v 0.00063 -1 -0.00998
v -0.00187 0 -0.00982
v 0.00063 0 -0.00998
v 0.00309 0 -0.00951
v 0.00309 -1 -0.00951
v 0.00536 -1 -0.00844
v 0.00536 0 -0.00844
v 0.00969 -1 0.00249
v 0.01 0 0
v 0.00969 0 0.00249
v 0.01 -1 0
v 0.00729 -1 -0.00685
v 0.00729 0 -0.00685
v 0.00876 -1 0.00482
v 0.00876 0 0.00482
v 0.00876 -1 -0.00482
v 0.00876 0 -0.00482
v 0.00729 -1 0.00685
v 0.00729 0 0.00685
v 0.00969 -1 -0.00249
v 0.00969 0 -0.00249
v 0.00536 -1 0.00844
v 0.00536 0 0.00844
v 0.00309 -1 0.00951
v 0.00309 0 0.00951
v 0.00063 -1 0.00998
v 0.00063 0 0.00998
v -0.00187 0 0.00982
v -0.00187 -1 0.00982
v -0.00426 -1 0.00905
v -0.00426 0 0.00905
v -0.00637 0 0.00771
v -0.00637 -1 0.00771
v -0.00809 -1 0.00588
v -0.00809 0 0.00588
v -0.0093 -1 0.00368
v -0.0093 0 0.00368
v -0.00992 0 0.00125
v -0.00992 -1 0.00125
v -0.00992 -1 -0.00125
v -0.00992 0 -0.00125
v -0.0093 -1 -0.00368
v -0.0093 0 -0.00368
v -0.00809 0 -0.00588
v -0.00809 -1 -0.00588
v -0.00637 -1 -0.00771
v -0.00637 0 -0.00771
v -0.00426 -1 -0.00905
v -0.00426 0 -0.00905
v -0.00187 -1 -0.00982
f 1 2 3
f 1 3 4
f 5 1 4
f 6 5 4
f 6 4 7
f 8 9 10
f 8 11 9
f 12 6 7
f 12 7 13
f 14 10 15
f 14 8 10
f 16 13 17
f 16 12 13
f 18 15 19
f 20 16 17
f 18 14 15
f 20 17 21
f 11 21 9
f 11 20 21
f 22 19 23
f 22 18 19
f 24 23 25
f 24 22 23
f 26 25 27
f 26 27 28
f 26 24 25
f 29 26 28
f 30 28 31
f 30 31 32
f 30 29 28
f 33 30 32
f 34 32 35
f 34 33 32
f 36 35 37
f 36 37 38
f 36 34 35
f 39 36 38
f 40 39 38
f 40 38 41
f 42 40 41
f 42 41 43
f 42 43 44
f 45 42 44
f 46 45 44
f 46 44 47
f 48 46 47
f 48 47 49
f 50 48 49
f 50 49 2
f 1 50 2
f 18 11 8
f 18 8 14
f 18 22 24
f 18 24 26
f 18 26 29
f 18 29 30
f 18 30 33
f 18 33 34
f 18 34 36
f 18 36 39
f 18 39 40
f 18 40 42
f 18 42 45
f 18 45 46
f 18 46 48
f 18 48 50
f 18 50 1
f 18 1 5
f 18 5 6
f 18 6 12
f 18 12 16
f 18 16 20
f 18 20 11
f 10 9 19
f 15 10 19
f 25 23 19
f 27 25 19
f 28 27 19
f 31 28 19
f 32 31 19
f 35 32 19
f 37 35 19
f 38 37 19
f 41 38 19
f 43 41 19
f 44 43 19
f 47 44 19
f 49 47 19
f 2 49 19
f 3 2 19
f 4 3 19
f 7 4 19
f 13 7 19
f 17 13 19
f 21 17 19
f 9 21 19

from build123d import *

# Parameters (mm, degrees)
CYLINDER_R          = 0.01
CYLINDER_DEPTH      = 1
CYLINDER_ROLL_ANGLE = 90


with BuildPart() as part:
    # Cylinder → Cylinder (new body)
    with BuildSketch(Plane.XY):
        Circle(CYLINDER_R)
    extrude(amount=CYLINDER_DEPTH)


with BuildPart() as part_1:
    # Cylinder roll: moved
    add(part.part.rotate(Axis((0, 0, 0), (1, 0, 0)), CYLINDER_ROLL_ANGLE))


with BuildPart() as part_2:
    # Cylinder placement: moved
    add(part_1.part)


solid = part_2.part
